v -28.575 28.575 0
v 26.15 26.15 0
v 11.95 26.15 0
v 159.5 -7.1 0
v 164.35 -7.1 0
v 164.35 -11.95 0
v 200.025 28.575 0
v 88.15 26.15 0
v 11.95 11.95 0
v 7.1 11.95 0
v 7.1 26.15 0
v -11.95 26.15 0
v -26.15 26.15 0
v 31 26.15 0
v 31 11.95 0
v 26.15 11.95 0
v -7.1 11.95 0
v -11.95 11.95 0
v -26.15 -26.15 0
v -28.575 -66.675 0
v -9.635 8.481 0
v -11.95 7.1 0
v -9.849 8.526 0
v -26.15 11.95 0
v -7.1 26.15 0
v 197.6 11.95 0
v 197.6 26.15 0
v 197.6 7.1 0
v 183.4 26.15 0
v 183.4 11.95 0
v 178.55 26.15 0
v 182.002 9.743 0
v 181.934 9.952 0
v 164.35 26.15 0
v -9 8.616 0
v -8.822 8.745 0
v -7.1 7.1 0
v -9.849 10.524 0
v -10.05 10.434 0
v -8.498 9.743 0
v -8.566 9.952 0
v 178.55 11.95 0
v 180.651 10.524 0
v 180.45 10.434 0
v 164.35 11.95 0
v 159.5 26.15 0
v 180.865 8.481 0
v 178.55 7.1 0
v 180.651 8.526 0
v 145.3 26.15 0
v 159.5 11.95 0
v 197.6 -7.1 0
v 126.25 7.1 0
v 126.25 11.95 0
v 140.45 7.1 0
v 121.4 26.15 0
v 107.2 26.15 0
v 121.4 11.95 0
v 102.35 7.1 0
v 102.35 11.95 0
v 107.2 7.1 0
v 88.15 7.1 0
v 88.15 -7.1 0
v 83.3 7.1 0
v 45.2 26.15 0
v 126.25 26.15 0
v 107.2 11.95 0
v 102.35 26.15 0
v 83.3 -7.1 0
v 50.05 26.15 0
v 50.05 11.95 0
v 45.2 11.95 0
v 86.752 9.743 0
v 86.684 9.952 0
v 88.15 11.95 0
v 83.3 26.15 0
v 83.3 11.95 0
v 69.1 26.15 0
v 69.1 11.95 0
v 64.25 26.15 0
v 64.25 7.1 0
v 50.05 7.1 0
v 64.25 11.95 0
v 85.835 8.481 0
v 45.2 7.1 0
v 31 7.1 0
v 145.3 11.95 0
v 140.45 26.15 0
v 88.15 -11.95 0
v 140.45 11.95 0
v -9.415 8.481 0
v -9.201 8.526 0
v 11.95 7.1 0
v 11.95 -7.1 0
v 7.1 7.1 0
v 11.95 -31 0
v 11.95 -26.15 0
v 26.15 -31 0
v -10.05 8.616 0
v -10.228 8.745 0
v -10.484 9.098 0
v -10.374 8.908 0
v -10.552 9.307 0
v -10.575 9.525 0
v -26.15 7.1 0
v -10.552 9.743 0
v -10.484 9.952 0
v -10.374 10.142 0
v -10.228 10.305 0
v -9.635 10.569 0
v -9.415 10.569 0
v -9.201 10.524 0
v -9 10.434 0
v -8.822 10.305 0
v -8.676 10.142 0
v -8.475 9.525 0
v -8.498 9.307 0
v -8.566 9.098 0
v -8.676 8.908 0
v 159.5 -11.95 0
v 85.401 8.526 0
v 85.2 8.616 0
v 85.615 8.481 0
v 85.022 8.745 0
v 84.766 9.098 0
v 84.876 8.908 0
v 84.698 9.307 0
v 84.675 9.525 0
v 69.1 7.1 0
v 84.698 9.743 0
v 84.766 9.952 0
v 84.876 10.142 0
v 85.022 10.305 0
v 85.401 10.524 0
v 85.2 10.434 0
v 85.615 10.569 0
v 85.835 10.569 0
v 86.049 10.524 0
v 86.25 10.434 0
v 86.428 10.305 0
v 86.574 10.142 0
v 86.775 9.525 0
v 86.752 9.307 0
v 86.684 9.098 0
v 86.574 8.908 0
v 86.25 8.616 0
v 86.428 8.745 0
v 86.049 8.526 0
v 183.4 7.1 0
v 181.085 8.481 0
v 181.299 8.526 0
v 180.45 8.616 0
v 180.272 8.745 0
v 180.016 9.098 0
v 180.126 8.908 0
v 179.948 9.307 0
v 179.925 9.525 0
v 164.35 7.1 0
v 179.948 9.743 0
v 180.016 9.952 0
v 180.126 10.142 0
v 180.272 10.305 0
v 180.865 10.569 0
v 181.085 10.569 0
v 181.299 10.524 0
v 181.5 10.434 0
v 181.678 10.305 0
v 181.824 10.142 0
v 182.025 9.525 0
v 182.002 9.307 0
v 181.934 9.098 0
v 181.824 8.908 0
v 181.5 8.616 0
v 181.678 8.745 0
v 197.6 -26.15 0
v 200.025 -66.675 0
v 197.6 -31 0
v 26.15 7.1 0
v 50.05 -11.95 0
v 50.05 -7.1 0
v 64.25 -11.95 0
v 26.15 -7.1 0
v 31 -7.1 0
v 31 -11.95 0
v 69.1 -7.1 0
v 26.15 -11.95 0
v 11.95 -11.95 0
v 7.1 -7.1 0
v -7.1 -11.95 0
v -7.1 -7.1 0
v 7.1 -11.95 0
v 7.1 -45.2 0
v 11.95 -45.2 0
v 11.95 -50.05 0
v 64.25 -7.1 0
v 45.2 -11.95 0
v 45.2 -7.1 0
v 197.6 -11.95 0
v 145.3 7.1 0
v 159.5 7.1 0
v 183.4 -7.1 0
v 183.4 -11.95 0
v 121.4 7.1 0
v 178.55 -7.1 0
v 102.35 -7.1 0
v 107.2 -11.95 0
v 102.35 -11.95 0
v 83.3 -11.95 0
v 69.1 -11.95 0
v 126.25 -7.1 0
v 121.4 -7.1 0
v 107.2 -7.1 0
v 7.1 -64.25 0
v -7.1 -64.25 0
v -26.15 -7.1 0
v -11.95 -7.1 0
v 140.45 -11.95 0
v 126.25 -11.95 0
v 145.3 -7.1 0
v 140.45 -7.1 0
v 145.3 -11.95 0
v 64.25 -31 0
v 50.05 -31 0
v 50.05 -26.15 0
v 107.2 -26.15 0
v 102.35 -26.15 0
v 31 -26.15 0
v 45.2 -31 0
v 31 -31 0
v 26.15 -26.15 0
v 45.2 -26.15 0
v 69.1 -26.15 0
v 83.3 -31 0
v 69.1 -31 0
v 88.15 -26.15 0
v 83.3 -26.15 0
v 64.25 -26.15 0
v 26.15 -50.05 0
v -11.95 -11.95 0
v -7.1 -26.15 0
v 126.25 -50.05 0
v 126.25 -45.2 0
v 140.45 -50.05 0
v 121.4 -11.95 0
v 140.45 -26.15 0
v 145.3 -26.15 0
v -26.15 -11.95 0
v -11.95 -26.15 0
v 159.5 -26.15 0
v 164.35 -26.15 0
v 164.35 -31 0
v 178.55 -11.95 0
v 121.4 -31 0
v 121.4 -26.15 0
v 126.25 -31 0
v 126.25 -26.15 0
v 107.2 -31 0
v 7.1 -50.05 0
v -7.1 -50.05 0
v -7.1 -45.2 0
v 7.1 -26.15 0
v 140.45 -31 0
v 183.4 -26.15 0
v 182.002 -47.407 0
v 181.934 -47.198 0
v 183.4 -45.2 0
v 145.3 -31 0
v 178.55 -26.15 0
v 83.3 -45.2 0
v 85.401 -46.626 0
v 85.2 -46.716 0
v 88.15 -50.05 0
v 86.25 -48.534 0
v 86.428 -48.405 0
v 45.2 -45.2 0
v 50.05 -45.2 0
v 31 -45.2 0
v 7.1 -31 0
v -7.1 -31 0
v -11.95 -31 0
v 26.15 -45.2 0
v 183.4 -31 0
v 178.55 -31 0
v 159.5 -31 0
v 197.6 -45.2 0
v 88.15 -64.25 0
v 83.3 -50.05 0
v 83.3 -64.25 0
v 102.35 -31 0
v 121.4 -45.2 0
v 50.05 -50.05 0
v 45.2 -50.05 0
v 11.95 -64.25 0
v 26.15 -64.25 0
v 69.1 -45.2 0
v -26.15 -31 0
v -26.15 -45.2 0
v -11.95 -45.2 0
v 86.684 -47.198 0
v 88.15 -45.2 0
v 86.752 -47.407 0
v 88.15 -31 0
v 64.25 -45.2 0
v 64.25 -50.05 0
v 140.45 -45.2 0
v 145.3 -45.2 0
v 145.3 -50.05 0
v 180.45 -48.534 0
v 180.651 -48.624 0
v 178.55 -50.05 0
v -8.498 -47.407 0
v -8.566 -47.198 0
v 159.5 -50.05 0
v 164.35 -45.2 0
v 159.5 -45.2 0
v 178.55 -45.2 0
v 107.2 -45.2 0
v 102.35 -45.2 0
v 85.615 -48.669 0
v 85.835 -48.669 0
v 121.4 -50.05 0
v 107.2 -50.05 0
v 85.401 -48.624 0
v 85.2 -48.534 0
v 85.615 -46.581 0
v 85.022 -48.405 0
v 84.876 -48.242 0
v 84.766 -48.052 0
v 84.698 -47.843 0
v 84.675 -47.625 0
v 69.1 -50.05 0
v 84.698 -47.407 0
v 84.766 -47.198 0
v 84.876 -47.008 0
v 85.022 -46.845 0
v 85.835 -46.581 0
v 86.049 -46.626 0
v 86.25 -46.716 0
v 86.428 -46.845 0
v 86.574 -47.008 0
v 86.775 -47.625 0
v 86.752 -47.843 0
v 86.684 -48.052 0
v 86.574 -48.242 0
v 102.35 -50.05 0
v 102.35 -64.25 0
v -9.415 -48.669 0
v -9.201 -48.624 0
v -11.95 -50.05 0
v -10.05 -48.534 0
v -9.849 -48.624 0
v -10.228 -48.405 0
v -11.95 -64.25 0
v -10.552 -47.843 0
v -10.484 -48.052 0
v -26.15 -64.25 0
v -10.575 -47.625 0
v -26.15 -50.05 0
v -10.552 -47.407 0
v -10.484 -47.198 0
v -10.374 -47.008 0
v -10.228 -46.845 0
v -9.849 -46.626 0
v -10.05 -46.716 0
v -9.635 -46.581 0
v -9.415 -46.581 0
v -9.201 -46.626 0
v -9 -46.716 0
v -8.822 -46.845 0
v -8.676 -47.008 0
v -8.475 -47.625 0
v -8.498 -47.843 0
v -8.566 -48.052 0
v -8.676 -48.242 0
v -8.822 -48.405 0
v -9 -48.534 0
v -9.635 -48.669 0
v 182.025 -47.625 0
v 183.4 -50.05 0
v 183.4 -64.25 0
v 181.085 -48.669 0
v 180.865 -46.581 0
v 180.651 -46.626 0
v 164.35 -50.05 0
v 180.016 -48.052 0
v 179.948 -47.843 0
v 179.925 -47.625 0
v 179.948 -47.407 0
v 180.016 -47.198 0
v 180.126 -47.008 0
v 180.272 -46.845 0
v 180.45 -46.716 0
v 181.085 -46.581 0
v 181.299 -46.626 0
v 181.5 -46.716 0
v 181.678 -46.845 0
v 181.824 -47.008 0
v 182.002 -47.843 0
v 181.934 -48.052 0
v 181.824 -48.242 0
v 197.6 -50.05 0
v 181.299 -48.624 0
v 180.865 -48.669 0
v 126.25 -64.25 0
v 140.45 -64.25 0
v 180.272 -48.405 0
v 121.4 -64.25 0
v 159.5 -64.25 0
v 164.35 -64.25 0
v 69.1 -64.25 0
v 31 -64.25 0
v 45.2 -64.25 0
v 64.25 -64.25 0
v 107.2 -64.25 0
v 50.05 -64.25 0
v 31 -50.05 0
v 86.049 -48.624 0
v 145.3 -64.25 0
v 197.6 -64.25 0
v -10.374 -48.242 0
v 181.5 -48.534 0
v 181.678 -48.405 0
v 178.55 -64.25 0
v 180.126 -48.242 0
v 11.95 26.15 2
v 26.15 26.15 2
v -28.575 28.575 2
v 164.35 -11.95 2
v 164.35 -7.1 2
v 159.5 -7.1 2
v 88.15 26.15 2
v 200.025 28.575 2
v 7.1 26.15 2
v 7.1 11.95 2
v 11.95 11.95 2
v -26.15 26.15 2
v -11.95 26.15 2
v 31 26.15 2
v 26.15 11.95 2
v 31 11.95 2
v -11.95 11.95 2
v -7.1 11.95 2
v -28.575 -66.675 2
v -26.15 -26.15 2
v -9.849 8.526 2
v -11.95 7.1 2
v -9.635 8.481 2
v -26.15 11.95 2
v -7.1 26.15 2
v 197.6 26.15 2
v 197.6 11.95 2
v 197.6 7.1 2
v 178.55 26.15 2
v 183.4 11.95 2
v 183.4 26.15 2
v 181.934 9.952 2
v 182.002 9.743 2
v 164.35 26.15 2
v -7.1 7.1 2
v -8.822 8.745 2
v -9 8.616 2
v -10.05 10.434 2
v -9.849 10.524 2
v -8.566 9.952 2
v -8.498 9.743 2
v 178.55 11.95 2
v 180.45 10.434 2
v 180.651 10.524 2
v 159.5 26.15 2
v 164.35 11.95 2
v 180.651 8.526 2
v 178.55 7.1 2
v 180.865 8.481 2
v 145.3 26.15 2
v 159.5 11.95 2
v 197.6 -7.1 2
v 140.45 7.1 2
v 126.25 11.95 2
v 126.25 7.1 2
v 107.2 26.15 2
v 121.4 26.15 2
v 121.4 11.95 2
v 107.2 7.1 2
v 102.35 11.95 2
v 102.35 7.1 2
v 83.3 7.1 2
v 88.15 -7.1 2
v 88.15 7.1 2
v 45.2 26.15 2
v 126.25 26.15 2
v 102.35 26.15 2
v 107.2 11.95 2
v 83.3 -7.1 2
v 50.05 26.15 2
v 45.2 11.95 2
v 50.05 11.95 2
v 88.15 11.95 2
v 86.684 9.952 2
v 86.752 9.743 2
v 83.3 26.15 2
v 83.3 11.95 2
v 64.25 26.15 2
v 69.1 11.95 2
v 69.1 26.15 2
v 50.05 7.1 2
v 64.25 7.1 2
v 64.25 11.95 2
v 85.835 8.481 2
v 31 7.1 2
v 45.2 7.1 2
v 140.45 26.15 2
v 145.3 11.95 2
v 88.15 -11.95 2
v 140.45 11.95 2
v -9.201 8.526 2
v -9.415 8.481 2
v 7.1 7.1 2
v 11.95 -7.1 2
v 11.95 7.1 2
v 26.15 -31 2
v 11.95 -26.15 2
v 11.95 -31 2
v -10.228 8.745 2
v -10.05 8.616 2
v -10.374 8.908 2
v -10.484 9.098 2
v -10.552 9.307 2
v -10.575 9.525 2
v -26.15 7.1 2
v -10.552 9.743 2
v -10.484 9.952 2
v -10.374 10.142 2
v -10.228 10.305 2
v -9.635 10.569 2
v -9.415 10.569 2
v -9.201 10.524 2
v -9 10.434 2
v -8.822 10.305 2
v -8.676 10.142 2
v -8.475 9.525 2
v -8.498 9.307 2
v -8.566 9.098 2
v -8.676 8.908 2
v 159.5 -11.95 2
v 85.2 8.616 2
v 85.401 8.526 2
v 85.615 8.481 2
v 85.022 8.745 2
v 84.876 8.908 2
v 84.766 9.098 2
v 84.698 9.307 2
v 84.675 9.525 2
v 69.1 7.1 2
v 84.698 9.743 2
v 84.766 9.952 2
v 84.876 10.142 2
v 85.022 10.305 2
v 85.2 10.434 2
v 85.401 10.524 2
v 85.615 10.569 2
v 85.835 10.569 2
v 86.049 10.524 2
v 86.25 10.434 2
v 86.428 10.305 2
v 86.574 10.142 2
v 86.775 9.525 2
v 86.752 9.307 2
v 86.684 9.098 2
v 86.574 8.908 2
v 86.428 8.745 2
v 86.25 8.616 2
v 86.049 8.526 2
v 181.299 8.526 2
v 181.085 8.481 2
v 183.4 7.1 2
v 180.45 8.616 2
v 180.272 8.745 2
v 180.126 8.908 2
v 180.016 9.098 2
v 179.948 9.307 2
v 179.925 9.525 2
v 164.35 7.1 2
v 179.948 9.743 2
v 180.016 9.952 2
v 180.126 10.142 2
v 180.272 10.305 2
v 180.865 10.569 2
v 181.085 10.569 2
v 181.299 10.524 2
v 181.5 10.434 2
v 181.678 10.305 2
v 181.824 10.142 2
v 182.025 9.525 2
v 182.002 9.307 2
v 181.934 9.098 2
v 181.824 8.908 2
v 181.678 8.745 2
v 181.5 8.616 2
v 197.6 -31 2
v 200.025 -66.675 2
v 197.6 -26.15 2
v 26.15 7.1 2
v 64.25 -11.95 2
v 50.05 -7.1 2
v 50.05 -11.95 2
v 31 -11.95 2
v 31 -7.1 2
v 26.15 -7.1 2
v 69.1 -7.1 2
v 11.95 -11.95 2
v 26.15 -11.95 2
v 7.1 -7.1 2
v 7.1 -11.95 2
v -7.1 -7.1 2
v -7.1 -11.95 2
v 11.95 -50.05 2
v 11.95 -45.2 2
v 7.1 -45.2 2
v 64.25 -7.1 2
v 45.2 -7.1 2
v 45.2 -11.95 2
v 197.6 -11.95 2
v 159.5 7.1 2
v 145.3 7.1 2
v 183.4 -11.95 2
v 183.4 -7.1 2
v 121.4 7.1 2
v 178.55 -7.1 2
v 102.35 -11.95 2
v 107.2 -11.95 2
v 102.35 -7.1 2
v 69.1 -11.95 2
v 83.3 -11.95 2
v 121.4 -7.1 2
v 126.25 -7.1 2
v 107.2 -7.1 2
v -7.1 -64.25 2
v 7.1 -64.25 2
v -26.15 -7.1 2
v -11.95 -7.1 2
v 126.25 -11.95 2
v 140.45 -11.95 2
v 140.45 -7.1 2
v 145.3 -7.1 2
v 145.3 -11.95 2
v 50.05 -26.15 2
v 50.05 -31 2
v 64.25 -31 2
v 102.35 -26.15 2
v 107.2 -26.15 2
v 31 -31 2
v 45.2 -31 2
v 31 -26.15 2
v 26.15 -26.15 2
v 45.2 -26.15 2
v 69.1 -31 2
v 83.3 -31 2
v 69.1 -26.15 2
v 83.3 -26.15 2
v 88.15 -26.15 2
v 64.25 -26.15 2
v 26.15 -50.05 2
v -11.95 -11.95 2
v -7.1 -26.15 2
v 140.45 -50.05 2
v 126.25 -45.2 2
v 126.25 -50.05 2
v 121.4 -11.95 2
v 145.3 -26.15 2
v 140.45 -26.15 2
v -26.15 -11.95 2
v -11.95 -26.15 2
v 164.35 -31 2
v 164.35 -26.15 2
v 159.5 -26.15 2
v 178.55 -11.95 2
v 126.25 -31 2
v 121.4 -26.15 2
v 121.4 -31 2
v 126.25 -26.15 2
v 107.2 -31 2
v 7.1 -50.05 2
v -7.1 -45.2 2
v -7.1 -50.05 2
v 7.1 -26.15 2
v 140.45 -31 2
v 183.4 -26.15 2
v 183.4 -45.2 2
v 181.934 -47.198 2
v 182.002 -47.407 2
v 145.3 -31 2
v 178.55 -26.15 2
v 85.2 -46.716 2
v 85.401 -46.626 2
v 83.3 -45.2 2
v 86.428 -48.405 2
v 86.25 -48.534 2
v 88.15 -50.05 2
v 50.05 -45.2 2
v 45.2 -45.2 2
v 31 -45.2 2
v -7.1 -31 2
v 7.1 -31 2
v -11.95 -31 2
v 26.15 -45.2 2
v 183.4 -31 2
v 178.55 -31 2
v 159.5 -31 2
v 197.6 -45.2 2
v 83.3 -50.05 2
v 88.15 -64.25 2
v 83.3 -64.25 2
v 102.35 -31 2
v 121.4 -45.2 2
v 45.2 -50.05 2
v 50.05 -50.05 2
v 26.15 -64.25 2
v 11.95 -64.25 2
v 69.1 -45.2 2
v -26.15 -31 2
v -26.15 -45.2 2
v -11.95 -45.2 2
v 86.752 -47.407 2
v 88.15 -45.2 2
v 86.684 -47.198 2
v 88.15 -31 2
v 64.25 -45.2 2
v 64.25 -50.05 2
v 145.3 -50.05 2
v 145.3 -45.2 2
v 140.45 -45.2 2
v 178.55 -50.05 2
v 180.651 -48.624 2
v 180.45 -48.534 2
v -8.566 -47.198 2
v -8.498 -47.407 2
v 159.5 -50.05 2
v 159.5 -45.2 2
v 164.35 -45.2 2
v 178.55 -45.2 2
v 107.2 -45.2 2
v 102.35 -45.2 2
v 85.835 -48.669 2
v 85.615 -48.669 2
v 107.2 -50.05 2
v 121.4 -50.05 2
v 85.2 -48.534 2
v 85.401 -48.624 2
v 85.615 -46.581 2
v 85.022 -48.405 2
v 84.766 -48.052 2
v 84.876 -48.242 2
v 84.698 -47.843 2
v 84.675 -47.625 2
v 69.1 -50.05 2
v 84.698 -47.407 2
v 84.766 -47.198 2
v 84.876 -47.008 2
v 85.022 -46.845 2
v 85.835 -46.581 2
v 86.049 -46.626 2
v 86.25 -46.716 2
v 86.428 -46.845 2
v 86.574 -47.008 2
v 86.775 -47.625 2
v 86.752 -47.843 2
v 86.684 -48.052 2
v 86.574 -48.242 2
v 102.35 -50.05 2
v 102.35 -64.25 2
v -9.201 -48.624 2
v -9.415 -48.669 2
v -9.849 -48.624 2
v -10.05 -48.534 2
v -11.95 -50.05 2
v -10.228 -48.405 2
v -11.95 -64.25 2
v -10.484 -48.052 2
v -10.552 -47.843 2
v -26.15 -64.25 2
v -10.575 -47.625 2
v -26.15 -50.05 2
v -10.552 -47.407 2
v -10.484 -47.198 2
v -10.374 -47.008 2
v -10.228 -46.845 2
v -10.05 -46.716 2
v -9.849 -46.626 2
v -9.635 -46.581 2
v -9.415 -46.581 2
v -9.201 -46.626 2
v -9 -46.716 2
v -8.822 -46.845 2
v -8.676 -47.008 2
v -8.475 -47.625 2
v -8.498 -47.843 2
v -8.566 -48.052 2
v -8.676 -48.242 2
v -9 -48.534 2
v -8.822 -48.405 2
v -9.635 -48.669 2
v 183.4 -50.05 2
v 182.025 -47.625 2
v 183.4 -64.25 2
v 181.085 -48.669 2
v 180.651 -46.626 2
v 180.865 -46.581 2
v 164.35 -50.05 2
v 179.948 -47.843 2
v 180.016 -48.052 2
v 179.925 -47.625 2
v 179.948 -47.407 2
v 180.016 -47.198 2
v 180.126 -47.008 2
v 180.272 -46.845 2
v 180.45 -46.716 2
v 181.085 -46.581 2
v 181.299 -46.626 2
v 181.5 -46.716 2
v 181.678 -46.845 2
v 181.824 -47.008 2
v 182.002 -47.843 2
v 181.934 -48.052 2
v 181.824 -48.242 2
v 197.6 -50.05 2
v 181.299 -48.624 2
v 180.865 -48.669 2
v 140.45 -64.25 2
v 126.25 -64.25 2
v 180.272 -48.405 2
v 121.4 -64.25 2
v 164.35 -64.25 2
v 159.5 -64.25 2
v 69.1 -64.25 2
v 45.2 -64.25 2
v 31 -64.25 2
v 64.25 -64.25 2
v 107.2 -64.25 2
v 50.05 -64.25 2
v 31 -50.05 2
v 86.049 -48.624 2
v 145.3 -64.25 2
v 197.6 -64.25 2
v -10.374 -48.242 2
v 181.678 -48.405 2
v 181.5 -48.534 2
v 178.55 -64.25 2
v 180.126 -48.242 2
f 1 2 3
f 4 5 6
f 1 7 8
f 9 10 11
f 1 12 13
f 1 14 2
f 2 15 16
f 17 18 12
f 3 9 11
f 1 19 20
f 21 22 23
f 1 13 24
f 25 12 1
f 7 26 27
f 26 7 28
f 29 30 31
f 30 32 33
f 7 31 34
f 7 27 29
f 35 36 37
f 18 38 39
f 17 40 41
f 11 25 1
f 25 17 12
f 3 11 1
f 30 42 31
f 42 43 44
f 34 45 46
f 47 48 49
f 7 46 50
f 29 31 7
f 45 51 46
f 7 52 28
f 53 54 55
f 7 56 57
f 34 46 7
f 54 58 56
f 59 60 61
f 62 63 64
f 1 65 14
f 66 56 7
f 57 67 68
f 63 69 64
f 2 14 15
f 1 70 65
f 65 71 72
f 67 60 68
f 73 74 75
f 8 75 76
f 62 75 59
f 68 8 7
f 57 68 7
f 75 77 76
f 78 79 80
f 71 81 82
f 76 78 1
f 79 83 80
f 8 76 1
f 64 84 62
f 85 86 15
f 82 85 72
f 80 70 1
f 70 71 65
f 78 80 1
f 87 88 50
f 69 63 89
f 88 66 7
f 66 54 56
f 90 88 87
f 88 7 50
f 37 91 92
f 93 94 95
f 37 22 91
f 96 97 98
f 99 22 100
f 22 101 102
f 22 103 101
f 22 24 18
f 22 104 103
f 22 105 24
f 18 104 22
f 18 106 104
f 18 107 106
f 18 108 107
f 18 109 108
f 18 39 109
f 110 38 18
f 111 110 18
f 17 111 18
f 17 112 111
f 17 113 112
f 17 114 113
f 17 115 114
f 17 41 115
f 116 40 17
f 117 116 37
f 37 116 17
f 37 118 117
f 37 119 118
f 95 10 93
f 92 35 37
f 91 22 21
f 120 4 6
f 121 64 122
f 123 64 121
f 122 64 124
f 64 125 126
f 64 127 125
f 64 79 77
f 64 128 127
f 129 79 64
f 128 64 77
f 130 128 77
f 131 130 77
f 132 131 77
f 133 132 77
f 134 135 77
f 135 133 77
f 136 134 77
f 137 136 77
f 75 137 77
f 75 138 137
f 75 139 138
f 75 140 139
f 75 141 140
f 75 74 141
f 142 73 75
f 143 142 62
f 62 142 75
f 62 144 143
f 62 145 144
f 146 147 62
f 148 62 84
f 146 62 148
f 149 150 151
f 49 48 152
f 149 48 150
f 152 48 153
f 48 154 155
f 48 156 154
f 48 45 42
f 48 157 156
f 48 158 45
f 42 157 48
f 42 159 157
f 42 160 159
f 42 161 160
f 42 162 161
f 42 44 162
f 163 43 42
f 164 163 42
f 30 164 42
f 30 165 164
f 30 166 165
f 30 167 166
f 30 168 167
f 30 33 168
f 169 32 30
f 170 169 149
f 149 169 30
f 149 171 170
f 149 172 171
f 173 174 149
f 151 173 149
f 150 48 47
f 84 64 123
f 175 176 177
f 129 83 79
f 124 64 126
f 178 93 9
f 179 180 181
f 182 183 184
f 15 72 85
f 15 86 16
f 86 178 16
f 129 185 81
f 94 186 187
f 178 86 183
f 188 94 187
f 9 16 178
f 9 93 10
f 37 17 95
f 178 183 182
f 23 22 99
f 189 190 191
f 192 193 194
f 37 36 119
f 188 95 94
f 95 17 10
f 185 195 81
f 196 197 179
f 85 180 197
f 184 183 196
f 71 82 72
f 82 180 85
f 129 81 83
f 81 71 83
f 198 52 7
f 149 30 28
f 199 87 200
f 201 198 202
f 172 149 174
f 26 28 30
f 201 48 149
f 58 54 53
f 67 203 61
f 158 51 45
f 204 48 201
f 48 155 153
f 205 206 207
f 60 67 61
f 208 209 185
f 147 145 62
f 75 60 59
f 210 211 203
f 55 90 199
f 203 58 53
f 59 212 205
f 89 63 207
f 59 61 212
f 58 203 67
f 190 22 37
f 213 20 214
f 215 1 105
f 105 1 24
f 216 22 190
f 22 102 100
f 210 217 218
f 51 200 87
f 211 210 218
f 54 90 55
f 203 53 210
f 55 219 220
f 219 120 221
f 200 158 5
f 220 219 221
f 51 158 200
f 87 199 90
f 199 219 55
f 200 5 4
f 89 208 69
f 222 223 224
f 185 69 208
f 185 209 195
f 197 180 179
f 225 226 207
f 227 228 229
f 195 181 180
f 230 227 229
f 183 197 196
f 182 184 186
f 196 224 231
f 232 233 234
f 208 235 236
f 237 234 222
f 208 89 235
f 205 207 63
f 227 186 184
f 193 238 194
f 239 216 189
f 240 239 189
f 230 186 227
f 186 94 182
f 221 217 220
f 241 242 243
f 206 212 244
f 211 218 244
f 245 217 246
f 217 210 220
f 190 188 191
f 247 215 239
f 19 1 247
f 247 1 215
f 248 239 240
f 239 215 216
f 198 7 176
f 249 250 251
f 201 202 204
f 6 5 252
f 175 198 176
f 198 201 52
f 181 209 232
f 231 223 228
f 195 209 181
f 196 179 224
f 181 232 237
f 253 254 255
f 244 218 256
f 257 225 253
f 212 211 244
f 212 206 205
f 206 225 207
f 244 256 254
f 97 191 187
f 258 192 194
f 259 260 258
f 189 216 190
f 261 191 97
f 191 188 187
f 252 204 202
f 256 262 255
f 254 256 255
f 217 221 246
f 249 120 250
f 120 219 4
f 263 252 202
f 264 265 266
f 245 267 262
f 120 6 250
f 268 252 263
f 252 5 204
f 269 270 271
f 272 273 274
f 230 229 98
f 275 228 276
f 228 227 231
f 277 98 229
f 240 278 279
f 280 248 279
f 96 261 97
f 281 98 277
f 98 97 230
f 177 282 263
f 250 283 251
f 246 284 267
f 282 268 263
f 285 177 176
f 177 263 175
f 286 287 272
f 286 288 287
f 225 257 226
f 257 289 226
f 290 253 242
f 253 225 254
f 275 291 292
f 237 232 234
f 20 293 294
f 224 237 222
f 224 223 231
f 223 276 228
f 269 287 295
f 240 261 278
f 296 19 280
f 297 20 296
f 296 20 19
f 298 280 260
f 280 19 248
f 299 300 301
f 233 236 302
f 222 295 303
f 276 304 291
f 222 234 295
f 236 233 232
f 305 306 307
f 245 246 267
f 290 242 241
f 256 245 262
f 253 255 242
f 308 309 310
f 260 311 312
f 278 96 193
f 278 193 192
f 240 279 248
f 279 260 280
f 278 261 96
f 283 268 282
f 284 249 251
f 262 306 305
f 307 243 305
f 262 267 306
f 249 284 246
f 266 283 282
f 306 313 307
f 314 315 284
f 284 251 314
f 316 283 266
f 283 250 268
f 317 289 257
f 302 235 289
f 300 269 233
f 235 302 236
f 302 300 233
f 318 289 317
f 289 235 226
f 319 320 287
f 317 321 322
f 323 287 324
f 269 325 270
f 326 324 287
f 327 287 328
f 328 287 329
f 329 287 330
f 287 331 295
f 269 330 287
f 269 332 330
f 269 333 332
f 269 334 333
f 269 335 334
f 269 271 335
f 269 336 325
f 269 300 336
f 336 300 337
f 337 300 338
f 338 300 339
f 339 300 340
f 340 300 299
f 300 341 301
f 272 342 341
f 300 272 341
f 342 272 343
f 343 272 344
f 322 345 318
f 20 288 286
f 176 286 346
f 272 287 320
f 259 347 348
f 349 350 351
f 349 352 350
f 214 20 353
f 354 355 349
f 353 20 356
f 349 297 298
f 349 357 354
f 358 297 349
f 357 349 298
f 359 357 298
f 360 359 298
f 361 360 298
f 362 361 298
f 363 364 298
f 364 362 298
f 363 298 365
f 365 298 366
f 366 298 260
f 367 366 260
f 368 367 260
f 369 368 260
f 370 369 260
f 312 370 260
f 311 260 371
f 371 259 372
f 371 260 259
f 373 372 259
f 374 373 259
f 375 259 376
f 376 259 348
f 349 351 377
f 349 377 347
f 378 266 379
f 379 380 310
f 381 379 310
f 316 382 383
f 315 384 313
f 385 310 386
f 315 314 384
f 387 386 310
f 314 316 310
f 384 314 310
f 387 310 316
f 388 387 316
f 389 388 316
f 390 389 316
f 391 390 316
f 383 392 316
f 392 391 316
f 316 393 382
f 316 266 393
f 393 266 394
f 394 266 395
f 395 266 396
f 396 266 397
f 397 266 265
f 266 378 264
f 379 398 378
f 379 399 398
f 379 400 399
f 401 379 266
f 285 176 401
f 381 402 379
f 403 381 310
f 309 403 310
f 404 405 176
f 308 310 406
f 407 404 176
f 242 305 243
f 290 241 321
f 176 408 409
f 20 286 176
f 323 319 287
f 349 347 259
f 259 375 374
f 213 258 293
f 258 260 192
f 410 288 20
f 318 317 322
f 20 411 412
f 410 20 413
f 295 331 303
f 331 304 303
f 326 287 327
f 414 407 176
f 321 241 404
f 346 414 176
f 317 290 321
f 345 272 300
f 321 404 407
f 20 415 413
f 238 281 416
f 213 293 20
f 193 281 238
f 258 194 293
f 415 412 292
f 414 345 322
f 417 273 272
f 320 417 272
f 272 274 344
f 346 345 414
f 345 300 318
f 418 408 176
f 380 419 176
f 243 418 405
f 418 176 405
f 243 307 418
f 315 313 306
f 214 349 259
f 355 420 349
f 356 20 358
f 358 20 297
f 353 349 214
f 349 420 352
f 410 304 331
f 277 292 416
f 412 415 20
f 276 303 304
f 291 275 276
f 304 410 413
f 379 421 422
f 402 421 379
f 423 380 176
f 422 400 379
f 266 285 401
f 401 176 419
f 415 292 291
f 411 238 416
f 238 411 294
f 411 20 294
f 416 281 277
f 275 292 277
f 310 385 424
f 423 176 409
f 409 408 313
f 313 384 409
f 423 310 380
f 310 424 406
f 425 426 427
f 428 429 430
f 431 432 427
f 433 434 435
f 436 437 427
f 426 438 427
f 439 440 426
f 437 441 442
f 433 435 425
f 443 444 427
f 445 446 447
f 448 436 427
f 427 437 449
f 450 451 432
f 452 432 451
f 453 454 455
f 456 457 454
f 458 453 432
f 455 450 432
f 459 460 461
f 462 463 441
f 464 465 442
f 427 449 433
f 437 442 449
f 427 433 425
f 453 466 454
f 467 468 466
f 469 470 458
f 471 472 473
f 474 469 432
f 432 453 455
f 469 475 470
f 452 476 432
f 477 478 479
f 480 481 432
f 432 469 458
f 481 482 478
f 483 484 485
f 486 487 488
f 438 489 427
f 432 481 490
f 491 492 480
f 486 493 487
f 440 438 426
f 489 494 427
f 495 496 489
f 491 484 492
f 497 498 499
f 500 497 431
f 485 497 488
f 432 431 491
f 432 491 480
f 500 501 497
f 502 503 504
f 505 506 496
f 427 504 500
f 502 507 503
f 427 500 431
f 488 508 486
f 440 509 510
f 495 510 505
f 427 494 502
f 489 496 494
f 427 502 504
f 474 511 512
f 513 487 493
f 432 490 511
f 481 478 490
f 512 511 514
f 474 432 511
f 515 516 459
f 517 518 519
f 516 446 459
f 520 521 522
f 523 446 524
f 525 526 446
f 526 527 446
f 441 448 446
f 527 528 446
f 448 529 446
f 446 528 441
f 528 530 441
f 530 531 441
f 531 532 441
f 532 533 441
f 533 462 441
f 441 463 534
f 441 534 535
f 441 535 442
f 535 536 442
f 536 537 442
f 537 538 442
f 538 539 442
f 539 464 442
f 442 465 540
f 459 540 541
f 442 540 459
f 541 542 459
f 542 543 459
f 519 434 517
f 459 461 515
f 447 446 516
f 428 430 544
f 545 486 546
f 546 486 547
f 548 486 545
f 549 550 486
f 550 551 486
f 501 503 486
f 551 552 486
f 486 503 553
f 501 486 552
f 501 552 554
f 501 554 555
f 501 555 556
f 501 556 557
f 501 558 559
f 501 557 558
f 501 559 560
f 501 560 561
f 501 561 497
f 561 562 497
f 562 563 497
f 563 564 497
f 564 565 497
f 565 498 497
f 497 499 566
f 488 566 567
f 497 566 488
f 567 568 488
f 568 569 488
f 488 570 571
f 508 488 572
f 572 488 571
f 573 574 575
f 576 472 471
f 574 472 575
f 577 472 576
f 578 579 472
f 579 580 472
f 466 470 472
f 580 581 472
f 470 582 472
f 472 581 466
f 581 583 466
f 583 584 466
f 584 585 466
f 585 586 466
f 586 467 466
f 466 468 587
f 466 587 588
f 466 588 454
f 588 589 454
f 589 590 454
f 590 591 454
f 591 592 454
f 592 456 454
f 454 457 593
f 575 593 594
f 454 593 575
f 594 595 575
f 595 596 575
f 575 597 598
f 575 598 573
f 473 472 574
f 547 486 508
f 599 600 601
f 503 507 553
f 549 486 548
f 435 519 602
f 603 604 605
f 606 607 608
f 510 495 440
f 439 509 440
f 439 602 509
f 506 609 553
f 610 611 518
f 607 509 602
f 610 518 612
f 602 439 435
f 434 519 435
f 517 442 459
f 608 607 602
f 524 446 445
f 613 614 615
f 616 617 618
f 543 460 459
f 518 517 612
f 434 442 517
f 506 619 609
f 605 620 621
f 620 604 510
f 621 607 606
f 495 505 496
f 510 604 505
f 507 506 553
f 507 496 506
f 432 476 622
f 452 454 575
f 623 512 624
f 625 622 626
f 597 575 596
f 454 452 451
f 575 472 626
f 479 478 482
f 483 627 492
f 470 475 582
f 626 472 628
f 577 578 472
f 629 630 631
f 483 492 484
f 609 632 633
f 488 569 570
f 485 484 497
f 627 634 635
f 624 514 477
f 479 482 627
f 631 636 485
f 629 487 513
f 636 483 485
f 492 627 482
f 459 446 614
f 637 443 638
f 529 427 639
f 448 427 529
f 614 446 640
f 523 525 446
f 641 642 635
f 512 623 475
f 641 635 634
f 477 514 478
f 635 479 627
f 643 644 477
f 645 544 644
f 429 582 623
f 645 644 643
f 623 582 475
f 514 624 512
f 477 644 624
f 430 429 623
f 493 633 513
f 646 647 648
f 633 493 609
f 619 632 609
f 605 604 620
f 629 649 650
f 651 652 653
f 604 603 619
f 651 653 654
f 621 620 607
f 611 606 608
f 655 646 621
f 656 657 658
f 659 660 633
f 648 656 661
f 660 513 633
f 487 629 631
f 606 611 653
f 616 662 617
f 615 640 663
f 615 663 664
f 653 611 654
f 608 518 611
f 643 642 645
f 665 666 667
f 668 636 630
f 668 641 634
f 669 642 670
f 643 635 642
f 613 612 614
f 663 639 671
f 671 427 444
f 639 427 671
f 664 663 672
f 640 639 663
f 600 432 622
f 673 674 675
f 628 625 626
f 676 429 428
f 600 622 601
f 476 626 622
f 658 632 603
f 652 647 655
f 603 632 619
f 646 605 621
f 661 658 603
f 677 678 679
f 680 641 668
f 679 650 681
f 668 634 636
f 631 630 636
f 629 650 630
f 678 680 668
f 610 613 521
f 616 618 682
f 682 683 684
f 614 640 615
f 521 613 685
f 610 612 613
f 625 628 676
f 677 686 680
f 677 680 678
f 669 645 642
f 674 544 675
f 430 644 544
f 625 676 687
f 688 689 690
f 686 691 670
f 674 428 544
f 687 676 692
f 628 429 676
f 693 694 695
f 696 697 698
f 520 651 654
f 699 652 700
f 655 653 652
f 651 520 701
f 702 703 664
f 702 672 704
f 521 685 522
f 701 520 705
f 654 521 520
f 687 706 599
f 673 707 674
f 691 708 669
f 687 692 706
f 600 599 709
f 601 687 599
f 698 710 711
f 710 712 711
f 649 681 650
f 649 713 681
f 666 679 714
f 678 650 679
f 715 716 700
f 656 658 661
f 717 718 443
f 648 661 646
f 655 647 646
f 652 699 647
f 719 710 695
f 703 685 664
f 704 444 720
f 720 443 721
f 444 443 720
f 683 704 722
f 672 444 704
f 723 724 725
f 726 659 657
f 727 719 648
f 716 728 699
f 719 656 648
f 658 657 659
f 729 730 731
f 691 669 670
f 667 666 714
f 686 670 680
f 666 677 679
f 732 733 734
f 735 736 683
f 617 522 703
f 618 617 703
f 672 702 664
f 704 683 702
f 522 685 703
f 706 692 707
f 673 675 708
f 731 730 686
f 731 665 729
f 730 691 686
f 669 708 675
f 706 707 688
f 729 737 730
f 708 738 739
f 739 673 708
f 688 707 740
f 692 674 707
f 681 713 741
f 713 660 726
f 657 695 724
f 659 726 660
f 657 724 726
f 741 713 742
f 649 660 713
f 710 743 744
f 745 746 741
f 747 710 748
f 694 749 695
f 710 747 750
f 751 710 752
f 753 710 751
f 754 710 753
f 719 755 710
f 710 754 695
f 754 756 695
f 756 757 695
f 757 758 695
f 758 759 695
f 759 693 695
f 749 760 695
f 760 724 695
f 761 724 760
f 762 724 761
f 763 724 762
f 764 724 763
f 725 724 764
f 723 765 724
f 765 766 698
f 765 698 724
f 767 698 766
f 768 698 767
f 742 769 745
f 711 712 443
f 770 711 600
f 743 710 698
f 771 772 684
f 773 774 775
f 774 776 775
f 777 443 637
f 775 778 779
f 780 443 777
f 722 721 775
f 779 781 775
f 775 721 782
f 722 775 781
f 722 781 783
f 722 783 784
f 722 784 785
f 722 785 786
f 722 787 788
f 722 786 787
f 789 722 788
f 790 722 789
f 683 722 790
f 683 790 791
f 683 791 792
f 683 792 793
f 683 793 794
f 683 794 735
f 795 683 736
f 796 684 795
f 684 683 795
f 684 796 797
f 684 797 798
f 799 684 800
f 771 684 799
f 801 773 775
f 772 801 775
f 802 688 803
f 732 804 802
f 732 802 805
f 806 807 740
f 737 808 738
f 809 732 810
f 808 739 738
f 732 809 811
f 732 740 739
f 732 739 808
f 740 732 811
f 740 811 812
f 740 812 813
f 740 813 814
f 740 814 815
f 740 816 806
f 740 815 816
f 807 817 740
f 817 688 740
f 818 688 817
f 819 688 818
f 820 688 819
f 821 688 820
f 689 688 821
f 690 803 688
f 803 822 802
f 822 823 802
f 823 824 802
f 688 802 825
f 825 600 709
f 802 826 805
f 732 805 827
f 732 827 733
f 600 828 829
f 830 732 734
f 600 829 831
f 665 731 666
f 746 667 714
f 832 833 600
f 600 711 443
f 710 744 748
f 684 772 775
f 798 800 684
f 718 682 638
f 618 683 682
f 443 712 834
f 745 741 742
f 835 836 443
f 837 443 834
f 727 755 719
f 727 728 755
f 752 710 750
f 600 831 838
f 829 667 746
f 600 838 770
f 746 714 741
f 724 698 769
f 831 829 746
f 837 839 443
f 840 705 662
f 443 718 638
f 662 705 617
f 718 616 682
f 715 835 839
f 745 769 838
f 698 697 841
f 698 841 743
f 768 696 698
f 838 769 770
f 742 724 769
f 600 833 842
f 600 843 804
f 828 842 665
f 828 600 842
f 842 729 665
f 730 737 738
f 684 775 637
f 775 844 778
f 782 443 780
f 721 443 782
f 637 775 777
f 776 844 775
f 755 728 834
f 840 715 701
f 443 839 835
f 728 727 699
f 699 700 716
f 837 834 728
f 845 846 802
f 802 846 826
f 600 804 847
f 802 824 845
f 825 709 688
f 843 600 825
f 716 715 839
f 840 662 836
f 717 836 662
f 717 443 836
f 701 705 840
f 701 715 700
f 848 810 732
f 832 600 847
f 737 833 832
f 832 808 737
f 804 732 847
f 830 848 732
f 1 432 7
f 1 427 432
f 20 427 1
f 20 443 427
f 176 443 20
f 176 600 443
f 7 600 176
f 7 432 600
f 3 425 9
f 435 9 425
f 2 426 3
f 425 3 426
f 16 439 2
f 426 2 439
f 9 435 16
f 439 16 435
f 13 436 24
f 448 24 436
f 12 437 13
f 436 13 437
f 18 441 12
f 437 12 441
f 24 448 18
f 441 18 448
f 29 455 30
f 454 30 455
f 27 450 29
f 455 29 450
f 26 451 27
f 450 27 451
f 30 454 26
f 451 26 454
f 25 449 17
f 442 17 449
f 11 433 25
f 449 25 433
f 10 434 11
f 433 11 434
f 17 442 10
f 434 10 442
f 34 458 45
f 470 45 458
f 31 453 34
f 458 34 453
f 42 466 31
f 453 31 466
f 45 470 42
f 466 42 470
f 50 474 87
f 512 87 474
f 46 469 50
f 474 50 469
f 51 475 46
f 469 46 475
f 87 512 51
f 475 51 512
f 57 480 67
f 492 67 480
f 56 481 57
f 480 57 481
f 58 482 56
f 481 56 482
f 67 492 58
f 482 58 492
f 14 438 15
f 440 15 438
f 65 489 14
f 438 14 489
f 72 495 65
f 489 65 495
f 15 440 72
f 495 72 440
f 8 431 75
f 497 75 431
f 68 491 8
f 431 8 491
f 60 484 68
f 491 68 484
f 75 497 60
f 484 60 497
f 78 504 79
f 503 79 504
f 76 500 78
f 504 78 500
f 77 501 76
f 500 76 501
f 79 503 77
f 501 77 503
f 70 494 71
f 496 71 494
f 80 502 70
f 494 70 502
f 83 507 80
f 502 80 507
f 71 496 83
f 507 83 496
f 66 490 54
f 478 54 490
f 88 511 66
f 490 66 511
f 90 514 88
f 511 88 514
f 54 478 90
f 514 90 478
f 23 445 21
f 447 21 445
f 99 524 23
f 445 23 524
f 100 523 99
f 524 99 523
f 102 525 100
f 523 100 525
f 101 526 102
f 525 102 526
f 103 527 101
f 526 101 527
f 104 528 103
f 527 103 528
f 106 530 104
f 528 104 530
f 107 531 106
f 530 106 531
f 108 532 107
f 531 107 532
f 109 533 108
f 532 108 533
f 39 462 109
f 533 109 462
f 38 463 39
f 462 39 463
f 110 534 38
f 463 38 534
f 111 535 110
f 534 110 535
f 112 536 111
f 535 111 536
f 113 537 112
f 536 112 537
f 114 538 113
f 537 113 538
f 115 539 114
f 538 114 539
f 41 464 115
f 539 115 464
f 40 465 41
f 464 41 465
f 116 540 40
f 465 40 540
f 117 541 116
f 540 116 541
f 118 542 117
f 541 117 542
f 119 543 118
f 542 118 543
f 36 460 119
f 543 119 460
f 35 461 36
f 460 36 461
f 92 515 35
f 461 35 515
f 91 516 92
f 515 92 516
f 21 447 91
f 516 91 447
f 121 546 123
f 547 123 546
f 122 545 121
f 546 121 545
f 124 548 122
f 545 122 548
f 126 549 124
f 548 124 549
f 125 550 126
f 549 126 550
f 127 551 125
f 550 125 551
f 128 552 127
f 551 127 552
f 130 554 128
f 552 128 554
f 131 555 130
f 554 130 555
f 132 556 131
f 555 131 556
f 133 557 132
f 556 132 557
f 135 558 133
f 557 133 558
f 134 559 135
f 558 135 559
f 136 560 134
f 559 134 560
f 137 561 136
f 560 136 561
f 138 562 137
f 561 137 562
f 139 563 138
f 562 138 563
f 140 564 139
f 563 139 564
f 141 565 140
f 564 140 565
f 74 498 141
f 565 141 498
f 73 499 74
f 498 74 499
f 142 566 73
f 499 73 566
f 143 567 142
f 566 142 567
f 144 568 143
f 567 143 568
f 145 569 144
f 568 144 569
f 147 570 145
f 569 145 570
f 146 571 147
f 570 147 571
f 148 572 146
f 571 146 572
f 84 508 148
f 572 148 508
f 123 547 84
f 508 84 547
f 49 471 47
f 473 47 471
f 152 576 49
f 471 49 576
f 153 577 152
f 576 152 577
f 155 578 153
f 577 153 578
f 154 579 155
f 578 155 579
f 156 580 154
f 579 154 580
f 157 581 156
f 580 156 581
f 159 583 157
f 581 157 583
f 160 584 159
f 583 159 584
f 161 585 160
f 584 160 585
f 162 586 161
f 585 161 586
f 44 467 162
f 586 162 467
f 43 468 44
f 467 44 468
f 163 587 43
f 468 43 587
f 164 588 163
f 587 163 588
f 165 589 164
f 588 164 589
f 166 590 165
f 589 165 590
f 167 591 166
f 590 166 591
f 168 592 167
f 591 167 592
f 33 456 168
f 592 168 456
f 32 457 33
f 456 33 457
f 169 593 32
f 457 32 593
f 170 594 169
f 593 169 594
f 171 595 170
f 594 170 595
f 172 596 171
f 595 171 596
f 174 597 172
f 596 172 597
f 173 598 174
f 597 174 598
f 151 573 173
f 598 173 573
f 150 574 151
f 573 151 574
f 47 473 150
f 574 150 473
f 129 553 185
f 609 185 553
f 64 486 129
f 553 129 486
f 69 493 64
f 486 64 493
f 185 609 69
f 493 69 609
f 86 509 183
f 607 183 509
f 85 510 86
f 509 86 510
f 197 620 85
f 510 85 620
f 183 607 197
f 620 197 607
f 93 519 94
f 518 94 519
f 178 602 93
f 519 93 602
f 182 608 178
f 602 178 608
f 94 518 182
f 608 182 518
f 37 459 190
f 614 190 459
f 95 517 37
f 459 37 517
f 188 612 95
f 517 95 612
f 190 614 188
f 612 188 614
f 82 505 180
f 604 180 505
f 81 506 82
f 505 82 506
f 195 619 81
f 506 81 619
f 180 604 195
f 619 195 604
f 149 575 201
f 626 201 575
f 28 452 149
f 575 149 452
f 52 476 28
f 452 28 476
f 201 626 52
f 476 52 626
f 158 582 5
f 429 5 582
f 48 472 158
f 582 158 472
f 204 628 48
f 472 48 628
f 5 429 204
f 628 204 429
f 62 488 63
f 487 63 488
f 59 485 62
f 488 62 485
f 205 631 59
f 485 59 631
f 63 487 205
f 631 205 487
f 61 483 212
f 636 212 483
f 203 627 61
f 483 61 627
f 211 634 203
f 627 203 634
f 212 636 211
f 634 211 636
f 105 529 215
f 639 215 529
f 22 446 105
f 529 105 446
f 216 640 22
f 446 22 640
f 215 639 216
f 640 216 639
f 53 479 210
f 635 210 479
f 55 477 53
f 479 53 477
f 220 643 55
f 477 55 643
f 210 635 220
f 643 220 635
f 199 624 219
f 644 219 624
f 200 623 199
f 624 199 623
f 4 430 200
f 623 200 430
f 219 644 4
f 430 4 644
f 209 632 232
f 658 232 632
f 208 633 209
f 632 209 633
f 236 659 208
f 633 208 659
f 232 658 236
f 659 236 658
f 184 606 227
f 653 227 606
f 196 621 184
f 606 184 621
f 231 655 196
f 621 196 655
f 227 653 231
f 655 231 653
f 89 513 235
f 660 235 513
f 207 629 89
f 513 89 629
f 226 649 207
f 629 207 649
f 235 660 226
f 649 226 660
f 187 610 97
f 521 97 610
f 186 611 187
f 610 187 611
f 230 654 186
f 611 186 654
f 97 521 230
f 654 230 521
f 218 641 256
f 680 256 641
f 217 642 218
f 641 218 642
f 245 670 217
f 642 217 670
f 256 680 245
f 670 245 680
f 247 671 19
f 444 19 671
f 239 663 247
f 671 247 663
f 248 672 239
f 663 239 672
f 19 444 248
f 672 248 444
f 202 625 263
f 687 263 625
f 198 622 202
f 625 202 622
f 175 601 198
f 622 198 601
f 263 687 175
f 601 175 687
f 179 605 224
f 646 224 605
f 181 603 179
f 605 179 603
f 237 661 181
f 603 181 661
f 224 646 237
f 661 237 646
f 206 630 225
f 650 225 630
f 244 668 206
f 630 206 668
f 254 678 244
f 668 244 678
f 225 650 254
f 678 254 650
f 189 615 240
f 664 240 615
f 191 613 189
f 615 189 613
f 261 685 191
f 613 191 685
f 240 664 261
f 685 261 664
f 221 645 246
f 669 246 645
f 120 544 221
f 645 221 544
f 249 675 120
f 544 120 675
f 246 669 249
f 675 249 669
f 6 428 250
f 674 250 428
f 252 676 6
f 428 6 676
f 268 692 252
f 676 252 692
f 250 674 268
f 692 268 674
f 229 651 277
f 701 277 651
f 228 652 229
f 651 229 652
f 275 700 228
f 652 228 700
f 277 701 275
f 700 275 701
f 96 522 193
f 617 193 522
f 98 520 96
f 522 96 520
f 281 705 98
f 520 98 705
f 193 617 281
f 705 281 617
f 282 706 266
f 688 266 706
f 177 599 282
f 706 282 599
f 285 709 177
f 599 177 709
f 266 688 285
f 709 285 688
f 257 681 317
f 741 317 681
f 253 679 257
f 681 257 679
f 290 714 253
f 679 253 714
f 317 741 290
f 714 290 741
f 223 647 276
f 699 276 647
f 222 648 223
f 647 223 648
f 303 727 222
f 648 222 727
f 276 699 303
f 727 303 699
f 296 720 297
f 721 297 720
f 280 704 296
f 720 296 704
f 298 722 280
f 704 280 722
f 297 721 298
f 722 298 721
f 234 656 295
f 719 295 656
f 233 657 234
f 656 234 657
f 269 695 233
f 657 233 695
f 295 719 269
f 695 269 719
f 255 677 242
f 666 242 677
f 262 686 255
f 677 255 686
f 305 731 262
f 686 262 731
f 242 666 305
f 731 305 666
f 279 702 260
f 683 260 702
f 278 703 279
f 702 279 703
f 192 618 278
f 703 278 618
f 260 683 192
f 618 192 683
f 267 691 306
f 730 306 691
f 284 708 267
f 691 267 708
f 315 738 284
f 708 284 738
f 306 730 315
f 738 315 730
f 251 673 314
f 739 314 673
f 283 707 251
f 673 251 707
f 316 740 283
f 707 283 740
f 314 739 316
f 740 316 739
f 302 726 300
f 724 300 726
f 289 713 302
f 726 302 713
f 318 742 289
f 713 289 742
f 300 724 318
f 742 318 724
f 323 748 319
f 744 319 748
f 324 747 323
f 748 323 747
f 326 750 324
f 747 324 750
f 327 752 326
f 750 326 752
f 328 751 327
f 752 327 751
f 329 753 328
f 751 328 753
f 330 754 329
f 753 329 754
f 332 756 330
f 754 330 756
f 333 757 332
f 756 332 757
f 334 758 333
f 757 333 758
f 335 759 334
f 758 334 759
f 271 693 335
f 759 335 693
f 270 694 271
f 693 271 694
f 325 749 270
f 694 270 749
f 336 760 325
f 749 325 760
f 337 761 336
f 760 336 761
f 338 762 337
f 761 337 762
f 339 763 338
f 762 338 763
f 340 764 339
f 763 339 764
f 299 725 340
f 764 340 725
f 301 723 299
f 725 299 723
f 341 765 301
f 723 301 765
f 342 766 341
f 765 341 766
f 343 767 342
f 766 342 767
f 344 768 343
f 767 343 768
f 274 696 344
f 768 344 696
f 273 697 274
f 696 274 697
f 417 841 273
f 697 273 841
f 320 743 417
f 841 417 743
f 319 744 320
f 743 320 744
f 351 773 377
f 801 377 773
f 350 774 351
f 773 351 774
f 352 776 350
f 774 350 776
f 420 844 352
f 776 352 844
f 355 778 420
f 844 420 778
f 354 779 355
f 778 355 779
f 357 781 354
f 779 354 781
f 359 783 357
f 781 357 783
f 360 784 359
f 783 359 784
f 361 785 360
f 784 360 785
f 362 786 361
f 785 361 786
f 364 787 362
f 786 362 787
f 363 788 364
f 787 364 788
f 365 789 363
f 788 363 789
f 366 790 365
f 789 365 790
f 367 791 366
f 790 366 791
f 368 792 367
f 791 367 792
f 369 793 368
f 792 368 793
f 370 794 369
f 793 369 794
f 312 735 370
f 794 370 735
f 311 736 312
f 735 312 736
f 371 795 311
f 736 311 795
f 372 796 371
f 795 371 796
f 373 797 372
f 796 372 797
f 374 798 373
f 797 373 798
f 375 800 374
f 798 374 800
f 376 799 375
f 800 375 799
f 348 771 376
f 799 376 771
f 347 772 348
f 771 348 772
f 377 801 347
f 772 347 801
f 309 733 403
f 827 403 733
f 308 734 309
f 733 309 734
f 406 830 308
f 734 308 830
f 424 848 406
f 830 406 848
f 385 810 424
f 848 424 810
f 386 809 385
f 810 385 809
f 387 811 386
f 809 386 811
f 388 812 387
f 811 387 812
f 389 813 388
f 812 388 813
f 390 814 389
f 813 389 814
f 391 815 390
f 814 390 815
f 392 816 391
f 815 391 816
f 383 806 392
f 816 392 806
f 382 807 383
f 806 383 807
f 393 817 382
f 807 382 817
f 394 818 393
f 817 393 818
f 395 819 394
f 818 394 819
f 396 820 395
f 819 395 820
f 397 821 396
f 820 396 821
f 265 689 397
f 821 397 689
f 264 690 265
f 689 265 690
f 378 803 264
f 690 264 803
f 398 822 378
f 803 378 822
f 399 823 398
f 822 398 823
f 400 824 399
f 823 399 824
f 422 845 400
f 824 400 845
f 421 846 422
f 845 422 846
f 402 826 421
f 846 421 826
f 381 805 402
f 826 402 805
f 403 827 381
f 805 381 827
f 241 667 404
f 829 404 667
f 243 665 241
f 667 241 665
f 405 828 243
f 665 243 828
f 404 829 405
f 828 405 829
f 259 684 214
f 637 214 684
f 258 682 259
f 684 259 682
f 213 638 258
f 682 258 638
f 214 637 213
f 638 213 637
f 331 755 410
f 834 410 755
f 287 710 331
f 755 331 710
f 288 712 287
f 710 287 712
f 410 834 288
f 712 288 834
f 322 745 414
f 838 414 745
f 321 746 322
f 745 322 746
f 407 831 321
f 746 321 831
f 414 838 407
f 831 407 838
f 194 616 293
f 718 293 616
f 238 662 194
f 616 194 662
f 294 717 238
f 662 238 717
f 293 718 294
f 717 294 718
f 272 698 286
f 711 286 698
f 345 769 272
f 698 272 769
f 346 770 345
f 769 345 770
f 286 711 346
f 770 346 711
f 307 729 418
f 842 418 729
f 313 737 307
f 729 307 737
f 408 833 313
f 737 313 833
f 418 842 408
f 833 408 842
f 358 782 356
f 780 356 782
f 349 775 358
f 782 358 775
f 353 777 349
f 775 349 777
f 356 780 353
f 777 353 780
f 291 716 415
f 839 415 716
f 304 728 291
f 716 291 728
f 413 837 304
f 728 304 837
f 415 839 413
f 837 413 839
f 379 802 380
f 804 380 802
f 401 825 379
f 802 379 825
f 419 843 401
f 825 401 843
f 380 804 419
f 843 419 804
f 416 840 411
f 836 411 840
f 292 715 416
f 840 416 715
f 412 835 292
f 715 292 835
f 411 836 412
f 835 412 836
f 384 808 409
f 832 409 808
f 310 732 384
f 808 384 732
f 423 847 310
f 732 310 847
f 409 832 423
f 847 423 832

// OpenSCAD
// Based on keyseebee plate.scad
// https://github.com/TeXitoi/keyseebee/tree/master/cad
// Modified for https://github.com/dkm/pouetpouet-board-r2

// Configuration
// You may need to adjust, depending on the actual size of 
// your screws/standoffs and the printer/building process
// imprecision.

// by spec should be 14, can be adjusted for printer imprecision
// 14 => needs force to "click" the switch
switch_hole=14.2;

// Plate thickness
// The thicker, the stronger...
// The plate + standoff = 5mm
// With 3mm standoff, plate must be 2mm.
thickness=2;

// M2 screw outer diam between 1.9 and 2.
m2_hole=2.1;

linear_extrude(thickness)
plate();

// Corresponds to the switch footprint in KiCad.
inter_switch=19.05;

// Repeats argument on the 12*4 matrix
module key_placement() {
     for (i=[0:11]) for (j=[0:4]) translate([(i-1)*inter_switch, -(j-1)*inter_switch]) children();
}

module m2_hole_placement() {
     for (i=[0:11]) for (j=[0:4])
        if ((i==0 && j == 0)
            || (i==0 && j == 3)
            || (i==5 && j == 0)
            || (i==5 && j == 3)
            || (i==10 && j == 0)
            || (i==10 && j == 3))
        
            translate([(i-1)*inter_switch, -(j-1)*inter_switch]) children();
}

module outline() {
          hull() key_placement() square(inter_switch, center=true);
}

module plate() {
     difference() {
          outline();
          key_placement() square(switch_hole, center=true);
          m2_hole_placement() translate([inter_switch/2, -inter_switch/2]) circle(d=m2_hole, $fn=30);
     }
}
